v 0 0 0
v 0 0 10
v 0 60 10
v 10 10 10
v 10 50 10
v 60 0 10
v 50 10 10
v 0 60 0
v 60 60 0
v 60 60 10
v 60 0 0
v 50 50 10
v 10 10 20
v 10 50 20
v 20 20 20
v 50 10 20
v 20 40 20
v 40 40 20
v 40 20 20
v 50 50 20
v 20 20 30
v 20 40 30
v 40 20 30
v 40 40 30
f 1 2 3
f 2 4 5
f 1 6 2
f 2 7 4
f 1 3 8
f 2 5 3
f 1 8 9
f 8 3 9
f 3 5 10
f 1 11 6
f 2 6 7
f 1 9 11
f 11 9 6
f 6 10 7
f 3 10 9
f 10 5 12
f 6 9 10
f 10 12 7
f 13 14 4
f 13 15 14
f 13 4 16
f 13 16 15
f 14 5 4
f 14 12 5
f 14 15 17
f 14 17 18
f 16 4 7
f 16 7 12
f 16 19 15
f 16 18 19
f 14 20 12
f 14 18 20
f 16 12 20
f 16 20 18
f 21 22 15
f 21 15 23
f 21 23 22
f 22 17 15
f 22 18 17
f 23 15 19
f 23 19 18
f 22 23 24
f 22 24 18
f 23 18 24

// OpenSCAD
// 1段目
cube(size = [60, 60, 10]);

// 2段目
translate([-(40/2 - 60/2), -(40/2 - 60/2), 10]) {
  cube(size = [40, 40, 10]);
}

// 3段目
translate([-(20/2 - 60/2), -(20/2 - 60/2), 20]) {
  cube(size = [20, 20, 10]);
}
